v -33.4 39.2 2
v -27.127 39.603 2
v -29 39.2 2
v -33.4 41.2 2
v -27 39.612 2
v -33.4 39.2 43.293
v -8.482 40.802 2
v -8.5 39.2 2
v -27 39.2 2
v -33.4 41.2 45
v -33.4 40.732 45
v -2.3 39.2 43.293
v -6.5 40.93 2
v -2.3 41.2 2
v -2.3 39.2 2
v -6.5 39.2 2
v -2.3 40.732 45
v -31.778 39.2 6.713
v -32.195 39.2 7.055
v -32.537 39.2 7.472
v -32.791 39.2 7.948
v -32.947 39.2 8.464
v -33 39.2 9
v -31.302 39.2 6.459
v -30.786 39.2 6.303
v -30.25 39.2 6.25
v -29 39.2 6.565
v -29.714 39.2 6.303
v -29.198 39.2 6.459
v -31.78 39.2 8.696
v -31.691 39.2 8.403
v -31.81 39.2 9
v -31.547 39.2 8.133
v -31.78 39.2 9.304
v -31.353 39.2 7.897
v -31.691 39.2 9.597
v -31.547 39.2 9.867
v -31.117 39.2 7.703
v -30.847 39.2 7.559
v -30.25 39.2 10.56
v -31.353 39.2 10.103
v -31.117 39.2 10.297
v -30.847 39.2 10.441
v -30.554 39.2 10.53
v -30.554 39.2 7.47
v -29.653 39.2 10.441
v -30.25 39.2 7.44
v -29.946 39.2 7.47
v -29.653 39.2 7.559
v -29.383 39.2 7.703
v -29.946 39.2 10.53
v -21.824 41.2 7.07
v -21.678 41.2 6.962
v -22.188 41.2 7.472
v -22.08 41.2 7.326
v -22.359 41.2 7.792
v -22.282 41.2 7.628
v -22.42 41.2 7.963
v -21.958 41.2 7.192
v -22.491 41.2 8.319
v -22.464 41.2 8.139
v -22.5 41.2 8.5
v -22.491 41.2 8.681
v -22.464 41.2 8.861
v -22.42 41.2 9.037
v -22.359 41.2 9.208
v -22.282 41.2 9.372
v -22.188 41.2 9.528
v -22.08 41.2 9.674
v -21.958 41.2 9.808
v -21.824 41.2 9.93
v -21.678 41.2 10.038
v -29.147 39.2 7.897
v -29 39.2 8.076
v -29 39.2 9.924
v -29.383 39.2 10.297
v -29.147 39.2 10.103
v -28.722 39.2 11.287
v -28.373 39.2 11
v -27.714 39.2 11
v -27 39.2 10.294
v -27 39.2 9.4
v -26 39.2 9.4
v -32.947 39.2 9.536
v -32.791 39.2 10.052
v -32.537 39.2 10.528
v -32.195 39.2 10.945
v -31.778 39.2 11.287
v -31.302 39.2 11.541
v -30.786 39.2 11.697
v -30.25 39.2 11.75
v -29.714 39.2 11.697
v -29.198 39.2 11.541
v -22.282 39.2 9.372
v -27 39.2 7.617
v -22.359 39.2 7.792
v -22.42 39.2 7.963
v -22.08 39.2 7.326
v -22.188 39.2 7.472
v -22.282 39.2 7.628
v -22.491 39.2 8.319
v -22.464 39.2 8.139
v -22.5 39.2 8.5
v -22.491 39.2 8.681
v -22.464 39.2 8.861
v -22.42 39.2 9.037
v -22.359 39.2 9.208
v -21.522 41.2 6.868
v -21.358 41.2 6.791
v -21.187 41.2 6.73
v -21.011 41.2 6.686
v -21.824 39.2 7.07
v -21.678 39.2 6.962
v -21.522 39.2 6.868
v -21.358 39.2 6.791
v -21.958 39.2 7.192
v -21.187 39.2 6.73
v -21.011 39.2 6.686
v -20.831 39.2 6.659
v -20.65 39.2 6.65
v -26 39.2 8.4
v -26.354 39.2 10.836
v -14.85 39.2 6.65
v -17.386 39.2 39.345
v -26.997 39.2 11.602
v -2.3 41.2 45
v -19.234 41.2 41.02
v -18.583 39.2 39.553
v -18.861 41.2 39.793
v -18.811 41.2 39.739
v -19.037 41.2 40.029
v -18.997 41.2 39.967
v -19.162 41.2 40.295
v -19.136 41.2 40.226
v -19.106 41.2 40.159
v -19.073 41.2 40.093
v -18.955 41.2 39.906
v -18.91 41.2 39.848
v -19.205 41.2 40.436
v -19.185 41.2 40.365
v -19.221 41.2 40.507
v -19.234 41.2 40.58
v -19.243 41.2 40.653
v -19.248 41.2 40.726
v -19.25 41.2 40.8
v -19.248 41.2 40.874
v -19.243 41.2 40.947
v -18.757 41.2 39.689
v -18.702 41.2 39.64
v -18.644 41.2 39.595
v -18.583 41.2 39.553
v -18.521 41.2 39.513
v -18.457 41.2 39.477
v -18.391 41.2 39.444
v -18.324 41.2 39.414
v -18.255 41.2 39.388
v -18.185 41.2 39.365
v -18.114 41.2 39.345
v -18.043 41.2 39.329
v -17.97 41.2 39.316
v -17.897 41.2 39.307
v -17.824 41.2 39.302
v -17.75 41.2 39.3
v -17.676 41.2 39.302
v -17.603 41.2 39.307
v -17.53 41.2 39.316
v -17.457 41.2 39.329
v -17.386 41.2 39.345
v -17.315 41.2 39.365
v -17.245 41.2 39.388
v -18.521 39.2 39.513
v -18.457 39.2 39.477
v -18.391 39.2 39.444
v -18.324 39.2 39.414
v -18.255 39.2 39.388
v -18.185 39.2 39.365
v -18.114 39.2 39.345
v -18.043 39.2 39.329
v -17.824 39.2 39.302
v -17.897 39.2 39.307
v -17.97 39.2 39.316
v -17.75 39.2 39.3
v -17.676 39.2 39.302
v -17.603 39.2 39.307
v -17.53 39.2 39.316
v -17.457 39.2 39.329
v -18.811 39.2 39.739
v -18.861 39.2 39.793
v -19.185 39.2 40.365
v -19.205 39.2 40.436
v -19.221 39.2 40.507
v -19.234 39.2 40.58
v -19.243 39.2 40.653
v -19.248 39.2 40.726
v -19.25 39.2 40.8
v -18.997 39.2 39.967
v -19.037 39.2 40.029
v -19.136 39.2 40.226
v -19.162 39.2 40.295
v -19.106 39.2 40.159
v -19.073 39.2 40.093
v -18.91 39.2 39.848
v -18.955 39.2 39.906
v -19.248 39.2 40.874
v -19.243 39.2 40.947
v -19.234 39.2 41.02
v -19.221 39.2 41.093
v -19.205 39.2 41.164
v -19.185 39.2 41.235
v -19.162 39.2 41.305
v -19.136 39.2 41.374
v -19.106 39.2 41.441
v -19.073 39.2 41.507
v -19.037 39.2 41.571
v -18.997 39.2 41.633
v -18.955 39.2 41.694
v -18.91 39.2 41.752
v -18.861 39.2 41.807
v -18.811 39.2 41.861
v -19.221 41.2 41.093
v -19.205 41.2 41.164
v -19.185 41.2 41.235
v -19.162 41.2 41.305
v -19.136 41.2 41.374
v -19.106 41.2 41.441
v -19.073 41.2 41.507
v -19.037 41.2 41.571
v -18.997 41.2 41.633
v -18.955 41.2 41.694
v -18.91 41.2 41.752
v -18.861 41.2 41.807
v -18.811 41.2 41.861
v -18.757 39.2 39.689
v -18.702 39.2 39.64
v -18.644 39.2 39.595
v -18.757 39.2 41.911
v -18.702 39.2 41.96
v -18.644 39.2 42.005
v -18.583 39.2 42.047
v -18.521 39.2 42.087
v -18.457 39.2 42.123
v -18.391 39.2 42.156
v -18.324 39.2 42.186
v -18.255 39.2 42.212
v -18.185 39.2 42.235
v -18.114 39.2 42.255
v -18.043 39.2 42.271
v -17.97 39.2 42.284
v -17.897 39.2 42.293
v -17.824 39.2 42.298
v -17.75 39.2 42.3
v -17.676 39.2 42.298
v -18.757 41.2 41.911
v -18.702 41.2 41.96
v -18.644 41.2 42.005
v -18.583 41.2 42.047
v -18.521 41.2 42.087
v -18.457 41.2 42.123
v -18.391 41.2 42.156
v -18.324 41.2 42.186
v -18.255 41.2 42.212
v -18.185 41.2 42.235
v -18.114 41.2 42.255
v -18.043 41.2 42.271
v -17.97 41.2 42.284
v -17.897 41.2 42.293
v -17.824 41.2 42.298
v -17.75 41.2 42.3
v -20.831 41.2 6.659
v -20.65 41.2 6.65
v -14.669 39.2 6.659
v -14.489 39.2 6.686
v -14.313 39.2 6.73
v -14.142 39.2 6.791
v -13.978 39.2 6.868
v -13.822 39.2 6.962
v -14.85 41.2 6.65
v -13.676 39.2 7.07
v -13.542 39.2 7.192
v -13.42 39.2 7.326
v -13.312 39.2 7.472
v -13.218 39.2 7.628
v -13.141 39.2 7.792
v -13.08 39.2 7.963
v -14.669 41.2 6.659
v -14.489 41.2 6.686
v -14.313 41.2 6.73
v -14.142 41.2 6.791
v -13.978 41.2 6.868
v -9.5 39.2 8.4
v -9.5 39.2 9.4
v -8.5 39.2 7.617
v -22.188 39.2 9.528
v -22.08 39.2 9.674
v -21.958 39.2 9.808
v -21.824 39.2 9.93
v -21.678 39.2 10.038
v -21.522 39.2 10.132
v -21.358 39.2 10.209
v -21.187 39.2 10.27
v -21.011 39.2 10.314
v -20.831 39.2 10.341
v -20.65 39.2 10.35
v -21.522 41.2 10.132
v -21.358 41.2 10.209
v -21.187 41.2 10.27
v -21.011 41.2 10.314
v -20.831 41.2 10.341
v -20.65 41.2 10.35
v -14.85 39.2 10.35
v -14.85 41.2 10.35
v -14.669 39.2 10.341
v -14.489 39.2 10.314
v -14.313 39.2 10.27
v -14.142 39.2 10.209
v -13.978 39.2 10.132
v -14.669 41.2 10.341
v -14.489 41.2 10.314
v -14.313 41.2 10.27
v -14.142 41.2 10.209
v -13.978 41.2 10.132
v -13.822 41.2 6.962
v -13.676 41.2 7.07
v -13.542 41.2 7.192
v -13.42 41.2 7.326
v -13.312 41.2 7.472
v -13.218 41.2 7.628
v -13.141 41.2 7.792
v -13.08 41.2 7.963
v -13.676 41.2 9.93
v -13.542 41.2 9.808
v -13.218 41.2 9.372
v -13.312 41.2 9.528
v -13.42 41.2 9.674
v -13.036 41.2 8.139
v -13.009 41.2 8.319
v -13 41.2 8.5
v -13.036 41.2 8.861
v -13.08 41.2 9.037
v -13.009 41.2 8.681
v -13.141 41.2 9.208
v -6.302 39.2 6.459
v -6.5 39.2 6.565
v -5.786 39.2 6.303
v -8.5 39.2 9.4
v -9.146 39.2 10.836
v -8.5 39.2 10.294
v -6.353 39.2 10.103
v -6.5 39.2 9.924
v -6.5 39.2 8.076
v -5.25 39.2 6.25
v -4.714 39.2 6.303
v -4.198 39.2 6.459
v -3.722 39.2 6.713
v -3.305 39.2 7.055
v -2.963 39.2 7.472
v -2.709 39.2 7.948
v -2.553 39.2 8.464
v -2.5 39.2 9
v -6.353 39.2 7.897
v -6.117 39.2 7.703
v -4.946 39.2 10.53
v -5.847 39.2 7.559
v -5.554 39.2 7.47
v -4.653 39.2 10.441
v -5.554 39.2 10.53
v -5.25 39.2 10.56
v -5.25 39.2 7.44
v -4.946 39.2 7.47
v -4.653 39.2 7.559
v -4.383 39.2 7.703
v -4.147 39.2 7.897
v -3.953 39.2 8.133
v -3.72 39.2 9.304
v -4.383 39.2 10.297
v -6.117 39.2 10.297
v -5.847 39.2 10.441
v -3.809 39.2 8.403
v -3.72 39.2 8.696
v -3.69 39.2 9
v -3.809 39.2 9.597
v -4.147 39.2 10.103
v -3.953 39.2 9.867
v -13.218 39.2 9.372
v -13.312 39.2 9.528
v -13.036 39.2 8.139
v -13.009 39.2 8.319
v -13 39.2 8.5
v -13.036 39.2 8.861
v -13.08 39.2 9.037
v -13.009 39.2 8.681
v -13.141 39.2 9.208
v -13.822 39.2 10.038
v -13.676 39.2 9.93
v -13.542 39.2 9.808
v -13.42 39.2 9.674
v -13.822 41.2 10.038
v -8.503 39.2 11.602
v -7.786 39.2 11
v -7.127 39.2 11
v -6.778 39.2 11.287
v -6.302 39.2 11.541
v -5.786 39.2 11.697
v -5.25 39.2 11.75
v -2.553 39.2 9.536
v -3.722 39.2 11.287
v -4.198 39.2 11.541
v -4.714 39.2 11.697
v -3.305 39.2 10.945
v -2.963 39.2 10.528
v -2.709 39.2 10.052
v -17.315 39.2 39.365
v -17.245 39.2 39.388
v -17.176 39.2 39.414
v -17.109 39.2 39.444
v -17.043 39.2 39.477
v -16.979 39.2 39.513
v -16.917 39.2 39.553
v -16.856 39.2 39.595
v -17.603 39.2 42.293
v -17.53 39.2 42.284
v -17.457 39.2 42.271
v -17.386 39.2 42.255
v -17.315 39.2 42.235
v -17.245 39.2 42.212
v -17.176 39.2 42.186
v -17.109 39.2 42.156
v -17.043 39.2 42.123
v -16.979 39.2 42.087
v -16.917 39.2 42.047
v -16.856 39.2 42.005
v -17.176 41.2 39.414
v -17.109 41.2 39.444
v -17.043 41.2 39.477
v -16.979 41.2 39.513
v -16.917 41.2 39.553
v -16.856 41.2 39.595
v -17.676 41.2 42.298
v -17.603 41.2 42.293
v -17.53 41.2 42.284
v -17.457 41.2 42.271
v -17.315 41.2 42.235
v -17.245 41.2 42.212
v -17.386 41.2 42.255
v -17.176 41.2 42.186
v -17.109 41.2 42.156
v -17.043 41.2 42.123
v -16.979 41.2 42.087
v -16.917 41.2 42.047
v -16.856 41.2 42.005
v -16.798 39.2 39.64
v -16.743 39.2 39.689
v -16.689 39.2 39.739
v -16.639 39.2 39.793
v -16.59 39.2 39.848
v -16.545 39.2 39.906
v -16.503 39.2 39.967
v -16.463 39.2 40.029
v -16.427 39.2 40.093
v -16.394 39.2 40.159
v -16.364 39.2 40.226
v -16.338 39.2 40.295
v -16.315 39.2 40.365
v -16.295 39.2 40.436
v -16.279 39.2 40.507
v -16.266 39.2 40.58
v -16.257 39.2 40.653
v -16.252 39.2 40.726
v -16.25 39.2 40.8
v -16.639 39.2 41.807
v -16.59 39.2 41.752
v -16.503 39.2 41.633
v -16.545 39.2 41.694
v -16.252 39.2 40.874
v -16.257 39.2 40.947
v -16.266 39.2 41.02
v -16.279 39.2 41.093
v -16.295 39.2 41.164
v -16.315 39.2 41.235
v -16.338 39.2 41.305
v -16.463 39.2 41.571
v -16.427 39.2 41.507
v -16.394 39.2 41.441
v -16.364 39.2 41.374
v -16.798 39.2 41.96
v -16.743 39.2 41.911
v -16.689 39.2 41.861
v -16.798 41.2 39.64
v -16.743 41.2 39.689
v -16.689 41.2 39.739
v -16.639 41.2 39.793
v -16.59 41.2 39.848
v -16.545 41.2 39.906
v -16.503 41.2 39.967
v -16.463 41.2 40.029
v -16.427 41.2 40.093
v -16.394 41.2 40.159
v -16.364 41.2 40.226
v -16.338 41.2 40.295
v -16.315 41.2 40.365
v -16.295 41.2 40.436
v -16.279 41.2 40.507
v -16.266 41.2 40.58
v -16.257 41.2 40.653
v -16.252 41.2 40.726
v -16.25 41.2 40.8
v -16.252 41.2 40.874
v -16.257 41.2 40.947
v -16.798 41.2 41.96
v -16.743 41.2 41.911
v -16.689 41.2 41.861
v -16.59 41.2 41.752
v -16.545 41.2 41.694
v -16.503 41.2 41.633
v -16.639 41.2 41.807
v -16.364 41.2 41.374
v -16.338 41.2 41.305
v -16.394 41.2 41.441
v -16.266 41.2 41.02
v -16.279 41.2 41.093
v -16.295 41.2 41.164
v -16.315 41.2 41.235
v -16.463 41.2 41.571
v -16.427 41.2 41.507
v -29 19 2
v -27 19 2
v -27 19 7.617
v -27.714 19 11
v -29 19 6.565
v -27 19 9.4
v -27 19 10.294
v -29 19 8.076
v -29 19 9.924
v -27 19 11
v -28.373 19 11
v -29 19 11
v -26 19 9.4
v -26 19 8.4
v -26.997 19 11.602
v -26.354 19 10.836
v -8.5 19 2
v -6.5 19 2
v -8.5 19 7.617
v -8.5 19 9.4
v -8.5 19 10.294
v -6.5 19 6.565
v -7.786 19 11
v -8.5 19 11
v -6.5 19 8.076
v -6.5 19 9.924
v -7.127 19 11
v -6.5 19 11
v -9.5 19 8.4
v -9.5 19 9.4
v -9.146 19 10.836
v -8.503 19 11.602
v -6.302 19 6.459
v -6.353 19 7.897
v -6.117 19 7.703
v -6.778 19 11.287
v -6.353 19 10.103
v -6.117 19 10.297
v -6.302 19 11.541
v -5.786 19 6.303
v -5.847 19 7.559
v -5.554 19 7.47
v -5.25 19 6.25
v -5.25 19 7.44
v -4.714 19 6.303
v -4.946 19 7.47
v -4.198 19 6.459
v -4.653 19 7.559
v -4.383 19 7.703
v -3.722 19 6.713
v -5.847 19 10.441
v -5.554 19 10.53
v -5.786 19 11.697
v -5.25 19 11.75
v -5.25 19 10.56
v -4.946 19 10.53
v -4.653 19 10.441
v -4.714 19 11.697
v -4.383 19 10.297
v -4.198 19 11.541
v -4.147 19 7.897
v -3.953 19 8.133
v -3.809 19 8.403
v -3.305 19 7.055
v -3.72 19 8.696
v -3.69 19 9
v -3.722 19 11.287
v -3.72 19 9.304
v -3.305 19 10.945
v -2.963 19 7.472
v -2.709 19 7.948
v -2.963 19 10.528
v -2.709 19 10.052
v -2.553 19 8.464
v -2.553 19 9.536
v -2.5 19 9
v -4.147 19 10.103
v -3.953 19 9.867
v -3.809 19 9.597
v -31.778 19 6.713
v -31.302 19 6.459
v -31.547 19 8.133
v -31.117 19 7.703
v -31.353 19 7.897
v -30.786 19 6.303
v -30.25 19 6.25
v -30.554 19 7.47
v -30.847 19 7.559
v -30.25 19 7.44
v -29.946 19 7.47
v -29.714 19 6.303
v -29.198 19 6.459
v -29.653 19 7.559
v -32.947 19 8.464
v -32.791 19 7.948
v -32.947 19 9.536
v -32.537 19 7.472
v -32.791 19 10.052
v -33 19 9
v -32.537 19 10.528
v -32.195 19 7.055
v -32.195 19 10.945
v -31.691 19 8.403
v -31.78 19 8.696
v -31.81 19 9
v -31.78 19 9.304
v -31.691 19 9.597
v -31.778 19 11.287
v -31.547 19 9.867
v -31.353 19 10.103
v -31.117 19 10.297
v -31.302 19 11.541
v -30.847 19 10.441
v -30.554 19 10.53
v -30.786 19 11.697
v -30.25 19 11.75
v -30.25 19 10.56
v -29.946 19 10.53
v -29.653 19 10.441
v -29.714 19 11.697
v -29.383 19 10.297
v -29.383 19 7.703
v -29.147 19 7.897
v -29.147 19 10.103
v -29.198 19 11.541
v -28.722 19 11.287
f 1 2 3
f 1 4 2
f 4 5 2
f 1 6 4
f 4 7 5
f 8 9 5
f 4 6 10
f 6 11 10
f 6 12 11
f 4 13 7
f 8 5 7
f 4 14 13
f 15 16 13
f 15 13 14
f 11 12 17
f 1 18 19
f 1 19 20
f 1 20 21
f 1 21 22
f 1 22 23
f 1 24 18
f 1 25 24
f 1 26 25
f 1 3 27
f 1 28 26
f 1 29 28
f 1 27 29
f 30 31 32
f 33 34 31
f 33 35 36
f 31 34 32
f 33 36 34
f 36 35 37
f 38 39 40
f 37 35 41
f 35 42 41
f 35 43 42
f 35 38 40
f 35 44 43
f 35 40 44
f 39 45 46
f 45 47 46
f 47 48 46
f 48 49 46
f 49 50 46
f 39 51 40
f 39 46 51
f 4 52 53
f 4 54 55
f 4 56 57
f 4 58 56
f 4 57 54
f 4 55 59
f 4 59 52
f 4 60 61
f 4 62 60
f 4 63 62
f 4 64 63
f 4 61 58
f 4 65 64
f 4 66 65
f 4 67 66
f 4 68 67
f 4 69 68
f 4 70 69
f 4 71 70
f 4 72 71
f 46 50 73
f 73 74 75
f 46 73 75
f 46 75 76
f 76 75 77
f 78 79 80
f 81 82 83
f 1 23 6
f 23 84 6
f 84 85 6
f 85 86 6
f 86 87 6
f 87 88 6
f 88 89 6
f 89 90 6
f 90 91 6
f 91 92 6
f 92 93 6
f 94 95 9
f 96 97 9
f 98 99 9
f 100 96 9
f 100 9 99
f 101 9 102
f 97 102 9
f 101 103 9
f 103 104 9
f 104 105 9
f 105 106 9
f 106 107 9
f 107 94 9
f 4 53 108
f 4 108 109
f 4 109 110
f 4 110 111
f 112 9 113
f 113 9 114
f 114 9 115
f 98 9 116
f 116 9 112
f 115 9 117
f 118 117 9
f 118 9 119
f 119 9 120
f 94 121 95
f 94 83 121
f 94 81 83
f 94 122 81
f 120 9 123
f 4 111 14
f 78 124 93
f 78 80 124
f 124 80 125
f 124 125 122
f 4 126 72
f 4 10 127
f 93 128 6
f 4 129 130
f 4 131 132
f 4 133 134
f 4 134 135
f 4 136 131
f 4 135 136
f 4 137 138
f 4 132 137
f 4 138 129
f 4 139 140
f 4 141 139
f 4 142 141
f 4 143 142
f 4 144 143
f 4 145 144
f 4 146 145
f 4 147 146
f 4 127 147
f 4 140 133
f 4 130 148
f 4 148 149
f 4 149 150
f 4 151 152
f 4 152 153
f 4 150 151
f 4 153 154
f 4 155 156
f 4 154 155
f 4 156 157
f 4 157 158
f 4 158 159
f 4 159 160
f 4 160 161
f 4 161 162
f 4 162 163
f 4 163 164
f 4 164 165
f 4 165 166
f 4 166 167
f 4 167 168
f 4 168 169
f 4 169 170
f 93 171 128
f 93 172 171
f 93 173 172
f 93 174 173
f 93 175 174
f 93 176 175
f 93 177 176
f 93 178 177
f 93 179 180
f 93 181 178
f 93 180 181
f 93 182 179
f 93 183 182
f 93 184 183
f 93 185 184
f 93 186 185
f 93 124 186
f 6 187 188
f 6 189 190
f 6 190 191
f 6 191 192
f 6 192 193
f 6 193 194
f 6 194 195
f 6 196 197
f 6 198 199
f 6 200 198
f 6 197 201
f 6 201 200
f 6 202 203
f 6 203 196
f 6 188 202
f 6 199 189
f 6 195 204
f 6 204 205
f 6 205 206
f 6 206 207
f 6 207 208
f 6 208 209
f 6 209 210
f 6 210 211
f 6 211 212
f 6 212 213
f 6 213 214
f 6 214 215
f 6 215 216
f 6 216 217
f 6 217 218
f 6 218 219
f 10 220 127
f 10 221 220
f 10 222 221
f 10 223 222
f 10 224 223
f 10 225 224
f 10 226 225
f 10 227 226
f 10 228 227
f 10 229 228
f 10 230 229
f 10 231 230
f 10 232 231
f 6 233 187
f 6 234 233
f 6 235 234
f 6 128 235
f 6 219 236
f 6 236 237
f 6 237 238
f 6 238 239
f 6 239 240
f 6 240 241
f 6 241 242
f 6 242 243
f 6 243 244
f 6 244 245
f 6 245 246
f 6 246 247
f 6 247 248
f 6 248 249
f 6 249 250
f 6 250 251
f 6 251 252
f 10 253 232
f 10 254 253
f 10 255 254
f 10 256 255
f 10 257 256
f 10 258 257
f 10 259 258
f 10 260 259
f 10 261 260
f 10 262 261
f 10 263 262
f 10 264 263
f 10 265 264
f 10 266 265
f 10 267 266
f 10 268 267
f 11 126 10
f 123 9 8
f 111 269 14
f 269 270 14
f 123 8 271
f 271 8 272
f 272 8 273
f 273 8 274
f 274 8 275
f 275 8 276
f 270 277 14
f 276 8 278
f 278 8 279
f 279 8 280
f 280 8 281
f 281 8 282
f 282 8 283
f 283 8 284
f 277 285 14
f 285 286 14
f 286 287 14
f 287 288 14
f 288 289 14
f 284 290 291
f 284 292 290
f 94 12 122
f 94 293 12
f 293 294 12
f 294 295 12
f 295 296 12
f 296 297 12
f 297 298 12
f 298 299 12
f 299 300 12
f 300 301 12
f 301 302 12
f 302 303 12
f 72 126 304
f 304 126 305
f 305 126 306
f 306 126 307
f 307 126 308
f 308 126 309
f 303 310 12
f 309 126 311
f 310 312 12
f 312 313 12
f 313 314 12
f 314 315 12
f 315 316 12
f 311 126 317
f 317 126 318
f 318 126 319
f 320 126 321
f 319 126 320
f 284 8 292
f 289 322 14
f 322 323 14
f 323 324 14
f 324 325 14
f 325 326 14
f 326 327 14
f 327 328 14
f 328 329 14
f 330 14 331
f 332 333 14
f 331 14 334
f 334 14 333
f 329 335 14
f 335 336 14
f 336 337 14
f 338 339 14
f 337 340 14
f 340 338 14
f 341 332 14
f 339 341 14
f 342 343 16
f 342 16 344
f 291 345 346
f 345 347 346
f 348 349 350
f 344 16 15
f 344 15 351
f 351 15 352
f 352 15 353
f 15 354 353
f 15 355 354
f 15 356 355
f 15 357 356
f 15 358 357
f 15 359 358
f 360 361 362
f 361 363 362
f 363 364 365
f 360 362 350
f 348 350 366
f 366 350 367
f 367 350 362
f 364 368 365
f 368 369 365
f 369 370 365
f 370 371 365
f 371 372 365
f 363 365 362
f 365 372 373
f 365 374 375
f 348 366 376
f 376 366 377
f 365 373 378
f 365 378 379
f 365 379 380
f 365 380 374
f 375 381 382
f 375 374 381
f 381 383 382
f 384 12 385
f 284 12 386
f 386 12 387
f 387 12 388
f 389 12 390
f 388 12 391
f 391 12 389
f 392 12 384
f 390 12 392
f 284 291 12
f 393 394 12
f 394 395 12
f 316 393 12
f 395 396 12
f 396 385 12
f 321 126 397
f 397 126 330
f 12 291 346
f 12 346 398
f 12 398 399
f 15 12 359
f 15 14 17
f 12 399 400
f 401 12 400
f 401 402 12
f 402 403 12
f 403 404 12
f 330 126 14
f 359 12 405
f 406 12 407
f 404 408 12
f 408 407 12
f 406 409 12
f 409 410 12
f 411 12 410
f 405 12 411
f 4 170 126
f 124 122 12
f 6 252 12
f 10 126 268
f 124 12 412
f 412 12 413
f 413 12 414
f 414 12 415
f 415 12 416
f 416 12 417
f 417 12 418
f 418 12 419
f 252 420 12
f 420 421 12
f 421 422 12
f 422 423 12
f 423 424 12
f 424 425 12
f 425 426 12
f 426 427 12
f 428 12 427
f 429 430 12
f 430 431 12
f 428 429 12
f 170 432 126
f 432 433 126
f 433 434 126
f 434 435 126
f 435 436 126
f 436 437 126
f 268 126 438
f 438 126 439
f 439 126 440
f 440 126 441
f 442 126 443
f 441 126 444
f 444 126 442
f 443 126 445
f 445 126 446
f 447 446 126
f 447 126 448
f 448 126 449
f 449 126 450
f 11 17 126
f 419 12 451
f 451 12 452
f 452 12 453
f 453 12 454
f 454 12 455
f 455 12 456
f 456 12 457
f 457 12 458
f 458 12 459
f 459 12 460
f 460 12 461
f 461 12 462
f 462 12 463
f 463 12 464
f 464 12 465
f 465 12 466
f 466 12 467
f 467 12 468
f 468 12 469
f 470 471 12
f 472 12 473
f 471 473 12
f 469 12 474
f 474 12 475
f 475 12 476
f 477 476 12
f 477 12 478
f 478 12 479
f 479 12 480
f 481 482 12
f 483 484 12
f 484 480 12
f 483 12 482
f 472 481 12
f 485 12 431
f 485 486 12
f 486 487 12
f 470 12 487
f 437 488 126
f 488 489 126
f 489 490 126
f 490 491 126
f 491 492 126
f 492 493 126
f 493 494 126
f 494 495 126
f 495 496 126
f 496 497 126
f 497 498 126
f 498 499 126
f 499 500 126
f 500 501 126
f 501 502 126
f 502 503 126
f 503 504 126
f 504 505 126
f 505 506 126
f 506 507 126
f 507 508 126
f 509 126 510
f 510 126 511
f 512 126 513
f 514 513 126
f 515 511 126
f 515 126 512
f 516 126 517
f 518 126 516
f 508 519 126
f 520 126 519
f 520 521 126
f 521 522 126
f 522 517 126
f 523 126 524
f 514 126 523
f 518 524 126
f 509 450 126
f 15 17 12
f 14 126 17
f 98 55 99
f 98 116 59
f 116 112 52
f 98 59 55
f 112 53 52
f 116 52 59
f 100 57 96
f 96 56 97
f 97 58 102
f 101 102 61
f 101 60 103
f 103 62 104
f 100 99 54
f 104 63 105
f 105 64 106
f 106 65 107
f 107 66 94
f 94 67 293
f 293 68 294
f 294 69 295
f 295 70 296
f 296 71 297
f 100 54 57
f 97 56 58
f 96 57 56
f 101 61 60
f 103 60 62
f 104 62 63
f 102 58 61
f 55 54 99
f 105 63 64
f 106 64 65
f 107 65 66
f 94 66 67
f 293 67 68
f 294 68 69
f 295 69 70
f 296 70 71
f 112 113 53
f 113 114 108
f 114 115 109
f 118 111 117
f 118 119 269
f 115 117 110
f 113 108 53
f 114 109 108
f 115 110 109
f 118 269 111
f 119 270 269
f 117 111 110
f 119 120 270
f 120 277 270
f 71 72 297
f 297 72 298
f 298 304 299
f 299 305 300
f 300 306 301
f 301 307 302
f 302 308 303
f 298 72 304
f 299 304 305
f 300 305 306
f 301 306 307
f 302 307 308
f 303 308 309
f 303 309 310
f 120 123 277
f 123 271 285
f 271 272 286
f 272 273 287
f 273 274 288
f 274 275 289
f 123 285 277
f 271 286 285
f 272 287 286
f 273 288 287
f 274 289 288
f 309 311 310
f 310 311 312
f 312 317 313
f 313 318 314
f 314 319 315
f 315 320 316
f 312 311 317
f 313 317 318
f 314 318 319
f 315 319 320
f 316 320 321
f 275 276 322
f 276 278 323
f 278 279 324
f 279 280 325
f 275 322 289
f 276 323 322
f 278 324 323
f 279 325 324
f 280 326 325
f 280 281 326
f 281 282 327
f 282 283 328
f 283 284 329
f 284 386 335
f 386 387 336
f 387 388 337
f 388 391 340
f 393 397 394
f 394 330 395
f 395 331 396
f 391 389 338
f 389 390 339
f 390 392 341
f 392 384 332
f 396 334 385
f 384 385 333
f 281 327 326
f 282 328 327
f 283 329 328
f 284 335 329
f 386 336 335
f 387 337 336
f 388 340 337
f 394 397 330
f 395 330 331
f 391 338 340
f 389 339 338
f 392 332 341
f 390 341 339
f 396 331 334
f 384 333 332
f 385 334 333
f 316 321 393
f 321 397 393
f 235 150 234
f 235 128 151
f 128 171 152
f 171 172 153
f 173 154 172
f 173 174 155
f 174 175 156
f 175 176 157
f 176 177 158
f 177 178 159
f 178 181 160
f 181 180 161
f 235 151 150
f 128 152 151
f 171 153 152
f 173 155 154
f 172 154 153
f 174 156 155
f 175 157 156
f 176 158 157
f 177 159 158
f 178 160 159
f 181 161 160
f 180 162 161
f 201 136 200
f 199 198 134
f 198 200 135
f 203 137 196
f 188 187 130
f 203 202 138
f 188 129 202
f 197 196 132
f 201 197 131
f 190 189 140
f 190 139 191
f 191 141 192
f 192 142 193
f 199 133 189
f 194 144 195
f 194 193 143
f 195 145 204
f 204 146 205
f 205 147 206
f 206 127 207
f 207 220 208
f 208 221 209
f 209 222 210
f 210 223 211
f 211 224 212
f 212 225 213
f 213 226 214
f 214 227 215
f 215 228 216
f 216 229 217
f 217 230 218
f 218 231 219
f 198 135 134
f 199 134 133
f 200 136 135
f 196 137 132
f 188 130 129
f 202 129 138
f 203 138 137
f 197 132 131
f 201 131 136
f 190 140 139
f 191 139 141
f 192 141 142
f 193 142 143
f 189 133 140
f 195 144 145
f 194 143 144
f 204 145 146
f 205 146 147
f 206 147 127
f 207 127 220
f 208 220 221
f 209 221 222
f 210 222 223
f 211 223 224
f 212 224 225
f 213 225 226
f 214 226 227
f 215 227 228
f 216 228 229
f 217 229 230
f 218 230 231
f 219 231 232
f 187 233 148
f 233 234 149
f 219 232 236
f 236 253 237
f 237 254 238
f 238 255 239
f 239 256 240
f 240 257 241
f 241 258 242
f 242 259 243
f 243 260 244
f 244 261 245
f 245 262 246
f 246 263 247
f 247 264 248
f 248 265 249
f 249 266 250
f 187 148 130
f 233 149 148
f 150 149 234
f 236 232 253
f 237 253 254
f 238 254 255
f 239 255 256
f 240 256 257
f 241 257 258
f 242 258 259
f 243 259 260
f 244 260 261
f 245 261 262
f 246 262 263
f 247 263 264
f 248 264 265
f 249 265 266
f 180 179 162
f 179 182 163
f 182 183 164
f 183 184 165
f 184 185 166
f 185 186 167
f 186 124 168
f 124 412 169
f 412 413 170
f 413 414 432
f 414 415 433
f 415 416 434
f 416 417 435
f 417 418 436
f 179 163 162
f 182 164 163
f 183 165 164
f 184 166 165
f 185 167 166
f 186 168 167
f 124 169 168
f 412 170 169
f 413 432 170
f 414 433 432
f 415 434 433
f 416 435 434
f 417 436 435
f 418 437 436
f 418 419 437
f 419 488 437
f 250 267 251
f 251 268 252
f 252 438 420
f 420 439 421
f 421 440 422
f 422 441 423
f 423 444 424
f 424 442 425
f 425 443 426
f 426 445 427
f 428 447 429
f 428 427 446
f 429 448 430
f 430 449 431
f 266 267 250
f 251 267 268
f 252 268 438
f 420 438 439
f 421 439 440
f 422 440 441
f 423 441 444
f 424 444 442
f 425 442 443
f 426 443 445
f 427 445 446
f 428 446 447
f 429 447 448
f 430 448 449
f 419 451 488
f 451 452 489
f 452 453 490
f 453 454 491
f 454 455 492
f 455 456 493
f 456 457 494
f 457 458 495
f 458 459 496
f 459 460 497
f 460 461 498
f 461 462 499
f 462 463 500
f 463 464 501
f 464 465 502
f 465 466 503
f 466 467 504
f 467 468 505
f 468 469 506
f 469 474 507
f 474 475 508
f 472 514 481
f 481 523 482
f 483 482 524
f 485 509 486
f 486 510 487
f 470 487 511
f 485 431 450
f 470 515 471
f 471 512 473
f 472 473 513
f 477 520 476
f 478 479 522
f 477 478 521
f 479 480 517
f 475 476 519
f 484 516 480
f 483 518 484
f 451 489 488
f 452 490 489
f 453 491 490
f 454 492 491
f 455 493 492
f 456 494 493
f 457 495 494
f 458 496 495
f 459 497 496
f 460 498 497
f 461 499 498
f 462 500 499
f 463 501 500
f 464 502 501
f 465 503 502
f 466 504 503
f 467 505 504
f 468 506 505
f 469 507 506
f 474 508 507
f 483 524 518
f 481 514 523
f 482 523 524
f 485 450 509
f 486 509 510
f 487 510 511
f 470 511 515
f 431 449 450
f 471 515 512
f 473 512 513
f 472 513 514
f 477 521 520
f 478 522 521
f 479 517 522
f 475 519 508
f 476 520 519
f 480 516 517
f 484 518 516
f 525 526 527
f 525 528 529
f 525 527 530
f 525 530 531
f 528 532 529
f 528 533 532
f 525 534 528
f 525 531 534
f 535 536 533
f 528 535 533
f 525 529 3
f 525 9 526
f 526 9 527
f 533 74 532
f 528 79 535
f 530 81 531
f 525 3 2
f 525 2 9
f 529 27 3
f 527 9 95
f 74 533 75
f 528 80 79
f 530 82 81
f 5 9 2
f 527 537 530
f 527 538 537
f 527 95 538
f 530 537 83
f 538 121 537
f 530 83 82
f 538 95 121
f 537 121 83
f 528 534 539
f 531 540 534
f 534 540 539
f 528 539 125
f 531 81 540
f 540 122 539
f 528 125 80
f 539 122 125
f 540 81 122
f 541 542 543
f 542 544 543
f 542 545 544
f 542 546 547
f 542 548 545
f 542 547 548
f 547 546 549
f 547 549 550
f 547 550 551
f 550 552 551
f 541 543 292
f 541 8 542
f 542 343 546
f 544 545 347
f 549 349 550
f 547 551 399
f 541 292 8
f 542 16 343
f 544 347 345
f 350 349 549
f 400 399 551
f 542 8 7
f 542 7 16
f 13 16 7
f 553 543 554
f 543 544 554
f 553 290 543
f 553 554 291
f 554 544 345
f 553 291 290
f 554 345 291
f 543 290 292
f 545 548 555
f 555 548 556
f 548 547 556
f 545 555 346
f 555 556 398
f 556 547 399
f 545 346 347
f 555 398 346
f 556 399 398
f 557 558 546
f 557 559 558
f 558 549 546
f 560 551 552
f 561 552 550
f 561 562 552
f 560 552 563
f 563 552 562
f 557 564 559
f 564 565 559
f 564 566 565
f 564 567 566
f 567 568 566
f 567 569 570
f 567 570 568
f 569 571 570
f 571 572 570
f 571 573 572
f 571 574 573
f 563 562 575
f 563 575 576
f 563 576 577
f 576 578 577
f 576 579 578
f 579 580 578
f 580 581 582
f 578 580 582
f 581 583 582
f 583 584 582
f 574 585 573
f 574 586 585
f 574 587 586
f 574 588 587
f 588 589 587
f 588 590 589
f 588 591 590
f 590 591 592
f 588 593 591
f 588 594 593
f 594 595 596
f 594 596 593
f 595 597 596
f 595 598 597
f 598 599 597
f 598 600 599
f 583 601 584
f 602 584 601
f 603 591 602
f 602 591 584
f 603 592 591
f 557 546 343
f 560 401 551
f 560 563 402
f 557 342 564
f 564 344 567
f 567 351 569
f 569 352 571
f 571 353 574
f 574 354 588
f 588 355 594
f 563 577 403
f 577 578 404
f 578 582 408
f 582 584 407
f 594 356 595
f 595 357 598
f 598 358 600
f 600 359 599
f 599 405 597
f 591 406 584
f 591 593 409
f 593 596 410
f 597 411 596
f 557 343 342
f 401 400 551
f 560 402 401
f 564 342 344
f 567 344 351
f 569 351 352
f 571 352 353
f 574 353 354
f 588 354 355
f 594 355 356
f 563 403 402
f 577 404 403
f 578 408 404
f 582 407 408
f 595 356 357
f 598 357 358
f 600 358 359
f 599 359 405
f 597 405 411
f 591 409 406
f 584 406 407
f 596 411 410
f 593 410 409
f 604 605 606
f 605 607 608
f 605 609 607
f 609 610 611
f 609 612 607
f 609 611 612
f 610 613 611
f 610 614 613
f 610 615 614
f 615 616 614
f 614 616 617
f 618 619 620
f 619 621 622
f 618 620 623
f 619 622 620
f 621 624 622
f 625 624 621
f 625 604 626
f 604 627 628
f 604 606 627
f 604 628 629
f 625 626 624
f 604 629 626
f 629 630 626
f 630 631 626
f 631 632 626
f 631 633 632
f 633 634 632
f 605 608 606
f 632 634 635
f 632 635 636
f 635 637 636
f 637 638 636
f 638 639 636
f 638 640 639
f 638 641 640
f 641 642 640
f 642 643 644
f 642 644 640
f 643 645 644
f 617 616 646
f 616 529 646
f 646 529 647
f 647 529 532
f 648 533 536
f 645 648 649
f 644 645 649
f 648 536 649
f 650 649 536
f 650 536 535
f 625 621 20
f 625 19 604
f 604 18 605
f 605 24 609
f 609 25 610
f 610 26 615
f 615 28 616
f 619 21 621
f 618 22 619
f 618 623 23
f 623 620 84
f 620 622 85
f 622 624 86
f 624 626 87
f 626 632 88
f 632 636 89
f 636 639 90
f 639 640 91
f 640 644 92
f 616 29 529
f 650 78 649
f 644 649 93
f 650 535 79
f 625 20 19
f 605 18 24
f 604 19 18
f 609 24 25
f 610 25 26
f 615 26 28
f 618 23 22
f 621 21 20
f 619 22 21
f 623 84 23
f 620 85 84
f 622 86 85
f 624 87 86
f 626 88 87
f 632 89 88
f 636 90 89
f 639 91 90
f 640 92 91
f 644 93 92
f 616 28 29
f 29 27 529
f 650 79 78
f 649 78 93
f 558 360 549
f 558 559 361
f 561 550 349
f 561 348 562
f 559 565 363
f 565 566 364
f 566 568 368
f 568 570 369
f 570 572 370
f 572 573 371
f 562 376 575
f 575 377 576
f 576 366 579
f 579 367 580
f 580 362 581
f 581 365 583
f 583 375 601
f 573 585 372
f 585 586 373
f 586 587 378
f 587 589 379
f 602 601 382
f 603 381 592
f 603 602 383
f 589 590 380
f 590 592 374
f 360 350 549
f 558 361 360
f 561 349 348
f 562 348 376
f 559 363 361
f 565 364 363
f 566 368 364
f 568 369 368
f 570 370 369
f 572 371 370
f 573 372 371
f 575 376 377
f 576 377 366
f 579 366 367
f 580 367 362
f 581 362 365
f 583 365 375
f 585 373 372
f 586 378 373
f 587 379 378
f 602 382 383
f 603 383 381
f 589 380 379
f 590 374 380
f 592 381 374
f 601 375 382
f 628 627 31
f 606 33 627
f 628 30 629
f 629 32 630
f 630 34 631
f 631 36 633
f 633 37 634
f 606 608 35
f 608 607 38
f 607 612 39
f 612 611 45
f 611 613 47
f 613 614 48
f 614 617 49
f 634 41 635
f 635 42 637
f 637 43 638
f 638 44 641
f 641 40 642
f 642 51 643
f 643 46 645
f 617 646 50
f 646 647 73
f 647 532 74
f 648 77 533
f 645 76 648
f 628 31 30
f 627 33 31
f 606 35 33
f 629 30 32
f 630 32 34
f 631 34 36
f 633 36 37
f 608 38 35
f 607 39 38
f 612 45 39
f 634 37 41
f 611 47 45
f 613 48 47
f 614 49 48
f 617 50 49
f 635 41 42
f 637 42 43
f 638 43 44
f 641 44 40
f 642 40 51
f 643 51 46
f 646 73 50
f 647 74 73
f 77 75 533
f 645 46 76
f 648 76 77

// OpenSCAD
// file: mixin.scad
wall = 2;
display_length = 47;
display_width = 31.5;
esp32c3_width = 18.5;
esp32c3_length = 22;
height = 24;

case_width = display_width + wall * 2;
case_length = display_length + wall * 2;

module rail_side(half_width, length, y) {
  translate([-half_width - 2, y, 0]) cube([2, length, 9]);
  hull() {
    translate([-half_width - 0.15, y, 5.5]) rotate([0, -40, 0]) cube([1.5, length, 1]);
    translate([-half_width - 0.5, y, 6.4]) cube([1.5, length, 1]);
  }
  translate([-half_width - 0.35, y, 8]) rotate([0, -40, 0]) cube([1.3, length, 1]);
}

module rail(half_width, length, y) {
  rail_side(half_width, length, y);
  mirror([1, 0, 0]) rail_side(half_width, length, y);
}

module esp32c3_mini_rails() {
  rail(esp32c3_width / 2, esp32c3_length, 19);
}

module type_c_cutout() {
  rotate([90, 0, 0])
    hull() {
      translate([-2.9, 0, 0]) cylinder(h=10, d=3.7, $fn=64);
      translate([2.9, 0, 0]) cylinder(h=10, d=3.7, $fn=64);
    }
}

module leg(leg_height) {
  difference() {
    cylinder(h=leg_height, d=5.5, $fn=32);
    translate([0, 0, -0.1]) cylinder(h=leg_height + 1, d=3.12, $fn=32);
  }
}

module rounded_box(size = [10, 10, 5], r) {
  translate([size[0] / 2, size[1] / 2, 0]) {
    linear_extrude(height=size[2]) {
      minkowski() {
        square([size[0] - 2 * r, size[1] - 2 * r], center=true);
        circle(r=r);
      }
    }
  }
}

module rounded_wedge(length, width, height, r = 1.5) {
  translate([0, 0, r * 2]) hull() {
      translate([0, r, -r])
        rotate([0, 90, 180])
          cylinder(h=length, d=r * 2);

      translate([0, width - r, -r])
        rotate([0, 90, 180])
          cylinder(h=length, d=r * 2);

      translate([0, width - r, height + r])
        rotate([0, 90, 180])
          cylinder(h=length, d=r * 2);
    }
}
// main file
include <mixin.scad>;

$fn = 128;

module lid() {
  translate([-display_width / 2 - wall, 0, wall]) esp32c3_mini_rails();

  translate([-display_width / 2 - wall - 12.5, display_length - esp32c3_length - wall * 3, wall + 7]) rotate([90, 0, 180]) leg(esp32c3_length);
  translate([-display_width / 2 - wall + 12.5, display_length - esp32c3_length - wall * 3, wall + 7]) rotate([90, 0, 180]) leg(esp32c3_length);

  difference() {
    intersection() {
      translate([-wall, wall * 2, wall]) rounded_wedge(
          length=display_width-0.1,
          width=41.1,
          height=39.45,
          r=1.5
        );
      translate([-display_width - wall-0.1, 41.2 - wall, 0]) cube([display_width - 0.2, wall, case_length - 6]);
    }

    translate([-display_width / 2 - wall, display_length, 8.5]) type_c_cutout();
    translate([-display_width / 2 - wall, display_length - 10, height * 1.7]) rotate([90, 0, 180]) cylinder(10, d=3);;
  }
}

lid();
